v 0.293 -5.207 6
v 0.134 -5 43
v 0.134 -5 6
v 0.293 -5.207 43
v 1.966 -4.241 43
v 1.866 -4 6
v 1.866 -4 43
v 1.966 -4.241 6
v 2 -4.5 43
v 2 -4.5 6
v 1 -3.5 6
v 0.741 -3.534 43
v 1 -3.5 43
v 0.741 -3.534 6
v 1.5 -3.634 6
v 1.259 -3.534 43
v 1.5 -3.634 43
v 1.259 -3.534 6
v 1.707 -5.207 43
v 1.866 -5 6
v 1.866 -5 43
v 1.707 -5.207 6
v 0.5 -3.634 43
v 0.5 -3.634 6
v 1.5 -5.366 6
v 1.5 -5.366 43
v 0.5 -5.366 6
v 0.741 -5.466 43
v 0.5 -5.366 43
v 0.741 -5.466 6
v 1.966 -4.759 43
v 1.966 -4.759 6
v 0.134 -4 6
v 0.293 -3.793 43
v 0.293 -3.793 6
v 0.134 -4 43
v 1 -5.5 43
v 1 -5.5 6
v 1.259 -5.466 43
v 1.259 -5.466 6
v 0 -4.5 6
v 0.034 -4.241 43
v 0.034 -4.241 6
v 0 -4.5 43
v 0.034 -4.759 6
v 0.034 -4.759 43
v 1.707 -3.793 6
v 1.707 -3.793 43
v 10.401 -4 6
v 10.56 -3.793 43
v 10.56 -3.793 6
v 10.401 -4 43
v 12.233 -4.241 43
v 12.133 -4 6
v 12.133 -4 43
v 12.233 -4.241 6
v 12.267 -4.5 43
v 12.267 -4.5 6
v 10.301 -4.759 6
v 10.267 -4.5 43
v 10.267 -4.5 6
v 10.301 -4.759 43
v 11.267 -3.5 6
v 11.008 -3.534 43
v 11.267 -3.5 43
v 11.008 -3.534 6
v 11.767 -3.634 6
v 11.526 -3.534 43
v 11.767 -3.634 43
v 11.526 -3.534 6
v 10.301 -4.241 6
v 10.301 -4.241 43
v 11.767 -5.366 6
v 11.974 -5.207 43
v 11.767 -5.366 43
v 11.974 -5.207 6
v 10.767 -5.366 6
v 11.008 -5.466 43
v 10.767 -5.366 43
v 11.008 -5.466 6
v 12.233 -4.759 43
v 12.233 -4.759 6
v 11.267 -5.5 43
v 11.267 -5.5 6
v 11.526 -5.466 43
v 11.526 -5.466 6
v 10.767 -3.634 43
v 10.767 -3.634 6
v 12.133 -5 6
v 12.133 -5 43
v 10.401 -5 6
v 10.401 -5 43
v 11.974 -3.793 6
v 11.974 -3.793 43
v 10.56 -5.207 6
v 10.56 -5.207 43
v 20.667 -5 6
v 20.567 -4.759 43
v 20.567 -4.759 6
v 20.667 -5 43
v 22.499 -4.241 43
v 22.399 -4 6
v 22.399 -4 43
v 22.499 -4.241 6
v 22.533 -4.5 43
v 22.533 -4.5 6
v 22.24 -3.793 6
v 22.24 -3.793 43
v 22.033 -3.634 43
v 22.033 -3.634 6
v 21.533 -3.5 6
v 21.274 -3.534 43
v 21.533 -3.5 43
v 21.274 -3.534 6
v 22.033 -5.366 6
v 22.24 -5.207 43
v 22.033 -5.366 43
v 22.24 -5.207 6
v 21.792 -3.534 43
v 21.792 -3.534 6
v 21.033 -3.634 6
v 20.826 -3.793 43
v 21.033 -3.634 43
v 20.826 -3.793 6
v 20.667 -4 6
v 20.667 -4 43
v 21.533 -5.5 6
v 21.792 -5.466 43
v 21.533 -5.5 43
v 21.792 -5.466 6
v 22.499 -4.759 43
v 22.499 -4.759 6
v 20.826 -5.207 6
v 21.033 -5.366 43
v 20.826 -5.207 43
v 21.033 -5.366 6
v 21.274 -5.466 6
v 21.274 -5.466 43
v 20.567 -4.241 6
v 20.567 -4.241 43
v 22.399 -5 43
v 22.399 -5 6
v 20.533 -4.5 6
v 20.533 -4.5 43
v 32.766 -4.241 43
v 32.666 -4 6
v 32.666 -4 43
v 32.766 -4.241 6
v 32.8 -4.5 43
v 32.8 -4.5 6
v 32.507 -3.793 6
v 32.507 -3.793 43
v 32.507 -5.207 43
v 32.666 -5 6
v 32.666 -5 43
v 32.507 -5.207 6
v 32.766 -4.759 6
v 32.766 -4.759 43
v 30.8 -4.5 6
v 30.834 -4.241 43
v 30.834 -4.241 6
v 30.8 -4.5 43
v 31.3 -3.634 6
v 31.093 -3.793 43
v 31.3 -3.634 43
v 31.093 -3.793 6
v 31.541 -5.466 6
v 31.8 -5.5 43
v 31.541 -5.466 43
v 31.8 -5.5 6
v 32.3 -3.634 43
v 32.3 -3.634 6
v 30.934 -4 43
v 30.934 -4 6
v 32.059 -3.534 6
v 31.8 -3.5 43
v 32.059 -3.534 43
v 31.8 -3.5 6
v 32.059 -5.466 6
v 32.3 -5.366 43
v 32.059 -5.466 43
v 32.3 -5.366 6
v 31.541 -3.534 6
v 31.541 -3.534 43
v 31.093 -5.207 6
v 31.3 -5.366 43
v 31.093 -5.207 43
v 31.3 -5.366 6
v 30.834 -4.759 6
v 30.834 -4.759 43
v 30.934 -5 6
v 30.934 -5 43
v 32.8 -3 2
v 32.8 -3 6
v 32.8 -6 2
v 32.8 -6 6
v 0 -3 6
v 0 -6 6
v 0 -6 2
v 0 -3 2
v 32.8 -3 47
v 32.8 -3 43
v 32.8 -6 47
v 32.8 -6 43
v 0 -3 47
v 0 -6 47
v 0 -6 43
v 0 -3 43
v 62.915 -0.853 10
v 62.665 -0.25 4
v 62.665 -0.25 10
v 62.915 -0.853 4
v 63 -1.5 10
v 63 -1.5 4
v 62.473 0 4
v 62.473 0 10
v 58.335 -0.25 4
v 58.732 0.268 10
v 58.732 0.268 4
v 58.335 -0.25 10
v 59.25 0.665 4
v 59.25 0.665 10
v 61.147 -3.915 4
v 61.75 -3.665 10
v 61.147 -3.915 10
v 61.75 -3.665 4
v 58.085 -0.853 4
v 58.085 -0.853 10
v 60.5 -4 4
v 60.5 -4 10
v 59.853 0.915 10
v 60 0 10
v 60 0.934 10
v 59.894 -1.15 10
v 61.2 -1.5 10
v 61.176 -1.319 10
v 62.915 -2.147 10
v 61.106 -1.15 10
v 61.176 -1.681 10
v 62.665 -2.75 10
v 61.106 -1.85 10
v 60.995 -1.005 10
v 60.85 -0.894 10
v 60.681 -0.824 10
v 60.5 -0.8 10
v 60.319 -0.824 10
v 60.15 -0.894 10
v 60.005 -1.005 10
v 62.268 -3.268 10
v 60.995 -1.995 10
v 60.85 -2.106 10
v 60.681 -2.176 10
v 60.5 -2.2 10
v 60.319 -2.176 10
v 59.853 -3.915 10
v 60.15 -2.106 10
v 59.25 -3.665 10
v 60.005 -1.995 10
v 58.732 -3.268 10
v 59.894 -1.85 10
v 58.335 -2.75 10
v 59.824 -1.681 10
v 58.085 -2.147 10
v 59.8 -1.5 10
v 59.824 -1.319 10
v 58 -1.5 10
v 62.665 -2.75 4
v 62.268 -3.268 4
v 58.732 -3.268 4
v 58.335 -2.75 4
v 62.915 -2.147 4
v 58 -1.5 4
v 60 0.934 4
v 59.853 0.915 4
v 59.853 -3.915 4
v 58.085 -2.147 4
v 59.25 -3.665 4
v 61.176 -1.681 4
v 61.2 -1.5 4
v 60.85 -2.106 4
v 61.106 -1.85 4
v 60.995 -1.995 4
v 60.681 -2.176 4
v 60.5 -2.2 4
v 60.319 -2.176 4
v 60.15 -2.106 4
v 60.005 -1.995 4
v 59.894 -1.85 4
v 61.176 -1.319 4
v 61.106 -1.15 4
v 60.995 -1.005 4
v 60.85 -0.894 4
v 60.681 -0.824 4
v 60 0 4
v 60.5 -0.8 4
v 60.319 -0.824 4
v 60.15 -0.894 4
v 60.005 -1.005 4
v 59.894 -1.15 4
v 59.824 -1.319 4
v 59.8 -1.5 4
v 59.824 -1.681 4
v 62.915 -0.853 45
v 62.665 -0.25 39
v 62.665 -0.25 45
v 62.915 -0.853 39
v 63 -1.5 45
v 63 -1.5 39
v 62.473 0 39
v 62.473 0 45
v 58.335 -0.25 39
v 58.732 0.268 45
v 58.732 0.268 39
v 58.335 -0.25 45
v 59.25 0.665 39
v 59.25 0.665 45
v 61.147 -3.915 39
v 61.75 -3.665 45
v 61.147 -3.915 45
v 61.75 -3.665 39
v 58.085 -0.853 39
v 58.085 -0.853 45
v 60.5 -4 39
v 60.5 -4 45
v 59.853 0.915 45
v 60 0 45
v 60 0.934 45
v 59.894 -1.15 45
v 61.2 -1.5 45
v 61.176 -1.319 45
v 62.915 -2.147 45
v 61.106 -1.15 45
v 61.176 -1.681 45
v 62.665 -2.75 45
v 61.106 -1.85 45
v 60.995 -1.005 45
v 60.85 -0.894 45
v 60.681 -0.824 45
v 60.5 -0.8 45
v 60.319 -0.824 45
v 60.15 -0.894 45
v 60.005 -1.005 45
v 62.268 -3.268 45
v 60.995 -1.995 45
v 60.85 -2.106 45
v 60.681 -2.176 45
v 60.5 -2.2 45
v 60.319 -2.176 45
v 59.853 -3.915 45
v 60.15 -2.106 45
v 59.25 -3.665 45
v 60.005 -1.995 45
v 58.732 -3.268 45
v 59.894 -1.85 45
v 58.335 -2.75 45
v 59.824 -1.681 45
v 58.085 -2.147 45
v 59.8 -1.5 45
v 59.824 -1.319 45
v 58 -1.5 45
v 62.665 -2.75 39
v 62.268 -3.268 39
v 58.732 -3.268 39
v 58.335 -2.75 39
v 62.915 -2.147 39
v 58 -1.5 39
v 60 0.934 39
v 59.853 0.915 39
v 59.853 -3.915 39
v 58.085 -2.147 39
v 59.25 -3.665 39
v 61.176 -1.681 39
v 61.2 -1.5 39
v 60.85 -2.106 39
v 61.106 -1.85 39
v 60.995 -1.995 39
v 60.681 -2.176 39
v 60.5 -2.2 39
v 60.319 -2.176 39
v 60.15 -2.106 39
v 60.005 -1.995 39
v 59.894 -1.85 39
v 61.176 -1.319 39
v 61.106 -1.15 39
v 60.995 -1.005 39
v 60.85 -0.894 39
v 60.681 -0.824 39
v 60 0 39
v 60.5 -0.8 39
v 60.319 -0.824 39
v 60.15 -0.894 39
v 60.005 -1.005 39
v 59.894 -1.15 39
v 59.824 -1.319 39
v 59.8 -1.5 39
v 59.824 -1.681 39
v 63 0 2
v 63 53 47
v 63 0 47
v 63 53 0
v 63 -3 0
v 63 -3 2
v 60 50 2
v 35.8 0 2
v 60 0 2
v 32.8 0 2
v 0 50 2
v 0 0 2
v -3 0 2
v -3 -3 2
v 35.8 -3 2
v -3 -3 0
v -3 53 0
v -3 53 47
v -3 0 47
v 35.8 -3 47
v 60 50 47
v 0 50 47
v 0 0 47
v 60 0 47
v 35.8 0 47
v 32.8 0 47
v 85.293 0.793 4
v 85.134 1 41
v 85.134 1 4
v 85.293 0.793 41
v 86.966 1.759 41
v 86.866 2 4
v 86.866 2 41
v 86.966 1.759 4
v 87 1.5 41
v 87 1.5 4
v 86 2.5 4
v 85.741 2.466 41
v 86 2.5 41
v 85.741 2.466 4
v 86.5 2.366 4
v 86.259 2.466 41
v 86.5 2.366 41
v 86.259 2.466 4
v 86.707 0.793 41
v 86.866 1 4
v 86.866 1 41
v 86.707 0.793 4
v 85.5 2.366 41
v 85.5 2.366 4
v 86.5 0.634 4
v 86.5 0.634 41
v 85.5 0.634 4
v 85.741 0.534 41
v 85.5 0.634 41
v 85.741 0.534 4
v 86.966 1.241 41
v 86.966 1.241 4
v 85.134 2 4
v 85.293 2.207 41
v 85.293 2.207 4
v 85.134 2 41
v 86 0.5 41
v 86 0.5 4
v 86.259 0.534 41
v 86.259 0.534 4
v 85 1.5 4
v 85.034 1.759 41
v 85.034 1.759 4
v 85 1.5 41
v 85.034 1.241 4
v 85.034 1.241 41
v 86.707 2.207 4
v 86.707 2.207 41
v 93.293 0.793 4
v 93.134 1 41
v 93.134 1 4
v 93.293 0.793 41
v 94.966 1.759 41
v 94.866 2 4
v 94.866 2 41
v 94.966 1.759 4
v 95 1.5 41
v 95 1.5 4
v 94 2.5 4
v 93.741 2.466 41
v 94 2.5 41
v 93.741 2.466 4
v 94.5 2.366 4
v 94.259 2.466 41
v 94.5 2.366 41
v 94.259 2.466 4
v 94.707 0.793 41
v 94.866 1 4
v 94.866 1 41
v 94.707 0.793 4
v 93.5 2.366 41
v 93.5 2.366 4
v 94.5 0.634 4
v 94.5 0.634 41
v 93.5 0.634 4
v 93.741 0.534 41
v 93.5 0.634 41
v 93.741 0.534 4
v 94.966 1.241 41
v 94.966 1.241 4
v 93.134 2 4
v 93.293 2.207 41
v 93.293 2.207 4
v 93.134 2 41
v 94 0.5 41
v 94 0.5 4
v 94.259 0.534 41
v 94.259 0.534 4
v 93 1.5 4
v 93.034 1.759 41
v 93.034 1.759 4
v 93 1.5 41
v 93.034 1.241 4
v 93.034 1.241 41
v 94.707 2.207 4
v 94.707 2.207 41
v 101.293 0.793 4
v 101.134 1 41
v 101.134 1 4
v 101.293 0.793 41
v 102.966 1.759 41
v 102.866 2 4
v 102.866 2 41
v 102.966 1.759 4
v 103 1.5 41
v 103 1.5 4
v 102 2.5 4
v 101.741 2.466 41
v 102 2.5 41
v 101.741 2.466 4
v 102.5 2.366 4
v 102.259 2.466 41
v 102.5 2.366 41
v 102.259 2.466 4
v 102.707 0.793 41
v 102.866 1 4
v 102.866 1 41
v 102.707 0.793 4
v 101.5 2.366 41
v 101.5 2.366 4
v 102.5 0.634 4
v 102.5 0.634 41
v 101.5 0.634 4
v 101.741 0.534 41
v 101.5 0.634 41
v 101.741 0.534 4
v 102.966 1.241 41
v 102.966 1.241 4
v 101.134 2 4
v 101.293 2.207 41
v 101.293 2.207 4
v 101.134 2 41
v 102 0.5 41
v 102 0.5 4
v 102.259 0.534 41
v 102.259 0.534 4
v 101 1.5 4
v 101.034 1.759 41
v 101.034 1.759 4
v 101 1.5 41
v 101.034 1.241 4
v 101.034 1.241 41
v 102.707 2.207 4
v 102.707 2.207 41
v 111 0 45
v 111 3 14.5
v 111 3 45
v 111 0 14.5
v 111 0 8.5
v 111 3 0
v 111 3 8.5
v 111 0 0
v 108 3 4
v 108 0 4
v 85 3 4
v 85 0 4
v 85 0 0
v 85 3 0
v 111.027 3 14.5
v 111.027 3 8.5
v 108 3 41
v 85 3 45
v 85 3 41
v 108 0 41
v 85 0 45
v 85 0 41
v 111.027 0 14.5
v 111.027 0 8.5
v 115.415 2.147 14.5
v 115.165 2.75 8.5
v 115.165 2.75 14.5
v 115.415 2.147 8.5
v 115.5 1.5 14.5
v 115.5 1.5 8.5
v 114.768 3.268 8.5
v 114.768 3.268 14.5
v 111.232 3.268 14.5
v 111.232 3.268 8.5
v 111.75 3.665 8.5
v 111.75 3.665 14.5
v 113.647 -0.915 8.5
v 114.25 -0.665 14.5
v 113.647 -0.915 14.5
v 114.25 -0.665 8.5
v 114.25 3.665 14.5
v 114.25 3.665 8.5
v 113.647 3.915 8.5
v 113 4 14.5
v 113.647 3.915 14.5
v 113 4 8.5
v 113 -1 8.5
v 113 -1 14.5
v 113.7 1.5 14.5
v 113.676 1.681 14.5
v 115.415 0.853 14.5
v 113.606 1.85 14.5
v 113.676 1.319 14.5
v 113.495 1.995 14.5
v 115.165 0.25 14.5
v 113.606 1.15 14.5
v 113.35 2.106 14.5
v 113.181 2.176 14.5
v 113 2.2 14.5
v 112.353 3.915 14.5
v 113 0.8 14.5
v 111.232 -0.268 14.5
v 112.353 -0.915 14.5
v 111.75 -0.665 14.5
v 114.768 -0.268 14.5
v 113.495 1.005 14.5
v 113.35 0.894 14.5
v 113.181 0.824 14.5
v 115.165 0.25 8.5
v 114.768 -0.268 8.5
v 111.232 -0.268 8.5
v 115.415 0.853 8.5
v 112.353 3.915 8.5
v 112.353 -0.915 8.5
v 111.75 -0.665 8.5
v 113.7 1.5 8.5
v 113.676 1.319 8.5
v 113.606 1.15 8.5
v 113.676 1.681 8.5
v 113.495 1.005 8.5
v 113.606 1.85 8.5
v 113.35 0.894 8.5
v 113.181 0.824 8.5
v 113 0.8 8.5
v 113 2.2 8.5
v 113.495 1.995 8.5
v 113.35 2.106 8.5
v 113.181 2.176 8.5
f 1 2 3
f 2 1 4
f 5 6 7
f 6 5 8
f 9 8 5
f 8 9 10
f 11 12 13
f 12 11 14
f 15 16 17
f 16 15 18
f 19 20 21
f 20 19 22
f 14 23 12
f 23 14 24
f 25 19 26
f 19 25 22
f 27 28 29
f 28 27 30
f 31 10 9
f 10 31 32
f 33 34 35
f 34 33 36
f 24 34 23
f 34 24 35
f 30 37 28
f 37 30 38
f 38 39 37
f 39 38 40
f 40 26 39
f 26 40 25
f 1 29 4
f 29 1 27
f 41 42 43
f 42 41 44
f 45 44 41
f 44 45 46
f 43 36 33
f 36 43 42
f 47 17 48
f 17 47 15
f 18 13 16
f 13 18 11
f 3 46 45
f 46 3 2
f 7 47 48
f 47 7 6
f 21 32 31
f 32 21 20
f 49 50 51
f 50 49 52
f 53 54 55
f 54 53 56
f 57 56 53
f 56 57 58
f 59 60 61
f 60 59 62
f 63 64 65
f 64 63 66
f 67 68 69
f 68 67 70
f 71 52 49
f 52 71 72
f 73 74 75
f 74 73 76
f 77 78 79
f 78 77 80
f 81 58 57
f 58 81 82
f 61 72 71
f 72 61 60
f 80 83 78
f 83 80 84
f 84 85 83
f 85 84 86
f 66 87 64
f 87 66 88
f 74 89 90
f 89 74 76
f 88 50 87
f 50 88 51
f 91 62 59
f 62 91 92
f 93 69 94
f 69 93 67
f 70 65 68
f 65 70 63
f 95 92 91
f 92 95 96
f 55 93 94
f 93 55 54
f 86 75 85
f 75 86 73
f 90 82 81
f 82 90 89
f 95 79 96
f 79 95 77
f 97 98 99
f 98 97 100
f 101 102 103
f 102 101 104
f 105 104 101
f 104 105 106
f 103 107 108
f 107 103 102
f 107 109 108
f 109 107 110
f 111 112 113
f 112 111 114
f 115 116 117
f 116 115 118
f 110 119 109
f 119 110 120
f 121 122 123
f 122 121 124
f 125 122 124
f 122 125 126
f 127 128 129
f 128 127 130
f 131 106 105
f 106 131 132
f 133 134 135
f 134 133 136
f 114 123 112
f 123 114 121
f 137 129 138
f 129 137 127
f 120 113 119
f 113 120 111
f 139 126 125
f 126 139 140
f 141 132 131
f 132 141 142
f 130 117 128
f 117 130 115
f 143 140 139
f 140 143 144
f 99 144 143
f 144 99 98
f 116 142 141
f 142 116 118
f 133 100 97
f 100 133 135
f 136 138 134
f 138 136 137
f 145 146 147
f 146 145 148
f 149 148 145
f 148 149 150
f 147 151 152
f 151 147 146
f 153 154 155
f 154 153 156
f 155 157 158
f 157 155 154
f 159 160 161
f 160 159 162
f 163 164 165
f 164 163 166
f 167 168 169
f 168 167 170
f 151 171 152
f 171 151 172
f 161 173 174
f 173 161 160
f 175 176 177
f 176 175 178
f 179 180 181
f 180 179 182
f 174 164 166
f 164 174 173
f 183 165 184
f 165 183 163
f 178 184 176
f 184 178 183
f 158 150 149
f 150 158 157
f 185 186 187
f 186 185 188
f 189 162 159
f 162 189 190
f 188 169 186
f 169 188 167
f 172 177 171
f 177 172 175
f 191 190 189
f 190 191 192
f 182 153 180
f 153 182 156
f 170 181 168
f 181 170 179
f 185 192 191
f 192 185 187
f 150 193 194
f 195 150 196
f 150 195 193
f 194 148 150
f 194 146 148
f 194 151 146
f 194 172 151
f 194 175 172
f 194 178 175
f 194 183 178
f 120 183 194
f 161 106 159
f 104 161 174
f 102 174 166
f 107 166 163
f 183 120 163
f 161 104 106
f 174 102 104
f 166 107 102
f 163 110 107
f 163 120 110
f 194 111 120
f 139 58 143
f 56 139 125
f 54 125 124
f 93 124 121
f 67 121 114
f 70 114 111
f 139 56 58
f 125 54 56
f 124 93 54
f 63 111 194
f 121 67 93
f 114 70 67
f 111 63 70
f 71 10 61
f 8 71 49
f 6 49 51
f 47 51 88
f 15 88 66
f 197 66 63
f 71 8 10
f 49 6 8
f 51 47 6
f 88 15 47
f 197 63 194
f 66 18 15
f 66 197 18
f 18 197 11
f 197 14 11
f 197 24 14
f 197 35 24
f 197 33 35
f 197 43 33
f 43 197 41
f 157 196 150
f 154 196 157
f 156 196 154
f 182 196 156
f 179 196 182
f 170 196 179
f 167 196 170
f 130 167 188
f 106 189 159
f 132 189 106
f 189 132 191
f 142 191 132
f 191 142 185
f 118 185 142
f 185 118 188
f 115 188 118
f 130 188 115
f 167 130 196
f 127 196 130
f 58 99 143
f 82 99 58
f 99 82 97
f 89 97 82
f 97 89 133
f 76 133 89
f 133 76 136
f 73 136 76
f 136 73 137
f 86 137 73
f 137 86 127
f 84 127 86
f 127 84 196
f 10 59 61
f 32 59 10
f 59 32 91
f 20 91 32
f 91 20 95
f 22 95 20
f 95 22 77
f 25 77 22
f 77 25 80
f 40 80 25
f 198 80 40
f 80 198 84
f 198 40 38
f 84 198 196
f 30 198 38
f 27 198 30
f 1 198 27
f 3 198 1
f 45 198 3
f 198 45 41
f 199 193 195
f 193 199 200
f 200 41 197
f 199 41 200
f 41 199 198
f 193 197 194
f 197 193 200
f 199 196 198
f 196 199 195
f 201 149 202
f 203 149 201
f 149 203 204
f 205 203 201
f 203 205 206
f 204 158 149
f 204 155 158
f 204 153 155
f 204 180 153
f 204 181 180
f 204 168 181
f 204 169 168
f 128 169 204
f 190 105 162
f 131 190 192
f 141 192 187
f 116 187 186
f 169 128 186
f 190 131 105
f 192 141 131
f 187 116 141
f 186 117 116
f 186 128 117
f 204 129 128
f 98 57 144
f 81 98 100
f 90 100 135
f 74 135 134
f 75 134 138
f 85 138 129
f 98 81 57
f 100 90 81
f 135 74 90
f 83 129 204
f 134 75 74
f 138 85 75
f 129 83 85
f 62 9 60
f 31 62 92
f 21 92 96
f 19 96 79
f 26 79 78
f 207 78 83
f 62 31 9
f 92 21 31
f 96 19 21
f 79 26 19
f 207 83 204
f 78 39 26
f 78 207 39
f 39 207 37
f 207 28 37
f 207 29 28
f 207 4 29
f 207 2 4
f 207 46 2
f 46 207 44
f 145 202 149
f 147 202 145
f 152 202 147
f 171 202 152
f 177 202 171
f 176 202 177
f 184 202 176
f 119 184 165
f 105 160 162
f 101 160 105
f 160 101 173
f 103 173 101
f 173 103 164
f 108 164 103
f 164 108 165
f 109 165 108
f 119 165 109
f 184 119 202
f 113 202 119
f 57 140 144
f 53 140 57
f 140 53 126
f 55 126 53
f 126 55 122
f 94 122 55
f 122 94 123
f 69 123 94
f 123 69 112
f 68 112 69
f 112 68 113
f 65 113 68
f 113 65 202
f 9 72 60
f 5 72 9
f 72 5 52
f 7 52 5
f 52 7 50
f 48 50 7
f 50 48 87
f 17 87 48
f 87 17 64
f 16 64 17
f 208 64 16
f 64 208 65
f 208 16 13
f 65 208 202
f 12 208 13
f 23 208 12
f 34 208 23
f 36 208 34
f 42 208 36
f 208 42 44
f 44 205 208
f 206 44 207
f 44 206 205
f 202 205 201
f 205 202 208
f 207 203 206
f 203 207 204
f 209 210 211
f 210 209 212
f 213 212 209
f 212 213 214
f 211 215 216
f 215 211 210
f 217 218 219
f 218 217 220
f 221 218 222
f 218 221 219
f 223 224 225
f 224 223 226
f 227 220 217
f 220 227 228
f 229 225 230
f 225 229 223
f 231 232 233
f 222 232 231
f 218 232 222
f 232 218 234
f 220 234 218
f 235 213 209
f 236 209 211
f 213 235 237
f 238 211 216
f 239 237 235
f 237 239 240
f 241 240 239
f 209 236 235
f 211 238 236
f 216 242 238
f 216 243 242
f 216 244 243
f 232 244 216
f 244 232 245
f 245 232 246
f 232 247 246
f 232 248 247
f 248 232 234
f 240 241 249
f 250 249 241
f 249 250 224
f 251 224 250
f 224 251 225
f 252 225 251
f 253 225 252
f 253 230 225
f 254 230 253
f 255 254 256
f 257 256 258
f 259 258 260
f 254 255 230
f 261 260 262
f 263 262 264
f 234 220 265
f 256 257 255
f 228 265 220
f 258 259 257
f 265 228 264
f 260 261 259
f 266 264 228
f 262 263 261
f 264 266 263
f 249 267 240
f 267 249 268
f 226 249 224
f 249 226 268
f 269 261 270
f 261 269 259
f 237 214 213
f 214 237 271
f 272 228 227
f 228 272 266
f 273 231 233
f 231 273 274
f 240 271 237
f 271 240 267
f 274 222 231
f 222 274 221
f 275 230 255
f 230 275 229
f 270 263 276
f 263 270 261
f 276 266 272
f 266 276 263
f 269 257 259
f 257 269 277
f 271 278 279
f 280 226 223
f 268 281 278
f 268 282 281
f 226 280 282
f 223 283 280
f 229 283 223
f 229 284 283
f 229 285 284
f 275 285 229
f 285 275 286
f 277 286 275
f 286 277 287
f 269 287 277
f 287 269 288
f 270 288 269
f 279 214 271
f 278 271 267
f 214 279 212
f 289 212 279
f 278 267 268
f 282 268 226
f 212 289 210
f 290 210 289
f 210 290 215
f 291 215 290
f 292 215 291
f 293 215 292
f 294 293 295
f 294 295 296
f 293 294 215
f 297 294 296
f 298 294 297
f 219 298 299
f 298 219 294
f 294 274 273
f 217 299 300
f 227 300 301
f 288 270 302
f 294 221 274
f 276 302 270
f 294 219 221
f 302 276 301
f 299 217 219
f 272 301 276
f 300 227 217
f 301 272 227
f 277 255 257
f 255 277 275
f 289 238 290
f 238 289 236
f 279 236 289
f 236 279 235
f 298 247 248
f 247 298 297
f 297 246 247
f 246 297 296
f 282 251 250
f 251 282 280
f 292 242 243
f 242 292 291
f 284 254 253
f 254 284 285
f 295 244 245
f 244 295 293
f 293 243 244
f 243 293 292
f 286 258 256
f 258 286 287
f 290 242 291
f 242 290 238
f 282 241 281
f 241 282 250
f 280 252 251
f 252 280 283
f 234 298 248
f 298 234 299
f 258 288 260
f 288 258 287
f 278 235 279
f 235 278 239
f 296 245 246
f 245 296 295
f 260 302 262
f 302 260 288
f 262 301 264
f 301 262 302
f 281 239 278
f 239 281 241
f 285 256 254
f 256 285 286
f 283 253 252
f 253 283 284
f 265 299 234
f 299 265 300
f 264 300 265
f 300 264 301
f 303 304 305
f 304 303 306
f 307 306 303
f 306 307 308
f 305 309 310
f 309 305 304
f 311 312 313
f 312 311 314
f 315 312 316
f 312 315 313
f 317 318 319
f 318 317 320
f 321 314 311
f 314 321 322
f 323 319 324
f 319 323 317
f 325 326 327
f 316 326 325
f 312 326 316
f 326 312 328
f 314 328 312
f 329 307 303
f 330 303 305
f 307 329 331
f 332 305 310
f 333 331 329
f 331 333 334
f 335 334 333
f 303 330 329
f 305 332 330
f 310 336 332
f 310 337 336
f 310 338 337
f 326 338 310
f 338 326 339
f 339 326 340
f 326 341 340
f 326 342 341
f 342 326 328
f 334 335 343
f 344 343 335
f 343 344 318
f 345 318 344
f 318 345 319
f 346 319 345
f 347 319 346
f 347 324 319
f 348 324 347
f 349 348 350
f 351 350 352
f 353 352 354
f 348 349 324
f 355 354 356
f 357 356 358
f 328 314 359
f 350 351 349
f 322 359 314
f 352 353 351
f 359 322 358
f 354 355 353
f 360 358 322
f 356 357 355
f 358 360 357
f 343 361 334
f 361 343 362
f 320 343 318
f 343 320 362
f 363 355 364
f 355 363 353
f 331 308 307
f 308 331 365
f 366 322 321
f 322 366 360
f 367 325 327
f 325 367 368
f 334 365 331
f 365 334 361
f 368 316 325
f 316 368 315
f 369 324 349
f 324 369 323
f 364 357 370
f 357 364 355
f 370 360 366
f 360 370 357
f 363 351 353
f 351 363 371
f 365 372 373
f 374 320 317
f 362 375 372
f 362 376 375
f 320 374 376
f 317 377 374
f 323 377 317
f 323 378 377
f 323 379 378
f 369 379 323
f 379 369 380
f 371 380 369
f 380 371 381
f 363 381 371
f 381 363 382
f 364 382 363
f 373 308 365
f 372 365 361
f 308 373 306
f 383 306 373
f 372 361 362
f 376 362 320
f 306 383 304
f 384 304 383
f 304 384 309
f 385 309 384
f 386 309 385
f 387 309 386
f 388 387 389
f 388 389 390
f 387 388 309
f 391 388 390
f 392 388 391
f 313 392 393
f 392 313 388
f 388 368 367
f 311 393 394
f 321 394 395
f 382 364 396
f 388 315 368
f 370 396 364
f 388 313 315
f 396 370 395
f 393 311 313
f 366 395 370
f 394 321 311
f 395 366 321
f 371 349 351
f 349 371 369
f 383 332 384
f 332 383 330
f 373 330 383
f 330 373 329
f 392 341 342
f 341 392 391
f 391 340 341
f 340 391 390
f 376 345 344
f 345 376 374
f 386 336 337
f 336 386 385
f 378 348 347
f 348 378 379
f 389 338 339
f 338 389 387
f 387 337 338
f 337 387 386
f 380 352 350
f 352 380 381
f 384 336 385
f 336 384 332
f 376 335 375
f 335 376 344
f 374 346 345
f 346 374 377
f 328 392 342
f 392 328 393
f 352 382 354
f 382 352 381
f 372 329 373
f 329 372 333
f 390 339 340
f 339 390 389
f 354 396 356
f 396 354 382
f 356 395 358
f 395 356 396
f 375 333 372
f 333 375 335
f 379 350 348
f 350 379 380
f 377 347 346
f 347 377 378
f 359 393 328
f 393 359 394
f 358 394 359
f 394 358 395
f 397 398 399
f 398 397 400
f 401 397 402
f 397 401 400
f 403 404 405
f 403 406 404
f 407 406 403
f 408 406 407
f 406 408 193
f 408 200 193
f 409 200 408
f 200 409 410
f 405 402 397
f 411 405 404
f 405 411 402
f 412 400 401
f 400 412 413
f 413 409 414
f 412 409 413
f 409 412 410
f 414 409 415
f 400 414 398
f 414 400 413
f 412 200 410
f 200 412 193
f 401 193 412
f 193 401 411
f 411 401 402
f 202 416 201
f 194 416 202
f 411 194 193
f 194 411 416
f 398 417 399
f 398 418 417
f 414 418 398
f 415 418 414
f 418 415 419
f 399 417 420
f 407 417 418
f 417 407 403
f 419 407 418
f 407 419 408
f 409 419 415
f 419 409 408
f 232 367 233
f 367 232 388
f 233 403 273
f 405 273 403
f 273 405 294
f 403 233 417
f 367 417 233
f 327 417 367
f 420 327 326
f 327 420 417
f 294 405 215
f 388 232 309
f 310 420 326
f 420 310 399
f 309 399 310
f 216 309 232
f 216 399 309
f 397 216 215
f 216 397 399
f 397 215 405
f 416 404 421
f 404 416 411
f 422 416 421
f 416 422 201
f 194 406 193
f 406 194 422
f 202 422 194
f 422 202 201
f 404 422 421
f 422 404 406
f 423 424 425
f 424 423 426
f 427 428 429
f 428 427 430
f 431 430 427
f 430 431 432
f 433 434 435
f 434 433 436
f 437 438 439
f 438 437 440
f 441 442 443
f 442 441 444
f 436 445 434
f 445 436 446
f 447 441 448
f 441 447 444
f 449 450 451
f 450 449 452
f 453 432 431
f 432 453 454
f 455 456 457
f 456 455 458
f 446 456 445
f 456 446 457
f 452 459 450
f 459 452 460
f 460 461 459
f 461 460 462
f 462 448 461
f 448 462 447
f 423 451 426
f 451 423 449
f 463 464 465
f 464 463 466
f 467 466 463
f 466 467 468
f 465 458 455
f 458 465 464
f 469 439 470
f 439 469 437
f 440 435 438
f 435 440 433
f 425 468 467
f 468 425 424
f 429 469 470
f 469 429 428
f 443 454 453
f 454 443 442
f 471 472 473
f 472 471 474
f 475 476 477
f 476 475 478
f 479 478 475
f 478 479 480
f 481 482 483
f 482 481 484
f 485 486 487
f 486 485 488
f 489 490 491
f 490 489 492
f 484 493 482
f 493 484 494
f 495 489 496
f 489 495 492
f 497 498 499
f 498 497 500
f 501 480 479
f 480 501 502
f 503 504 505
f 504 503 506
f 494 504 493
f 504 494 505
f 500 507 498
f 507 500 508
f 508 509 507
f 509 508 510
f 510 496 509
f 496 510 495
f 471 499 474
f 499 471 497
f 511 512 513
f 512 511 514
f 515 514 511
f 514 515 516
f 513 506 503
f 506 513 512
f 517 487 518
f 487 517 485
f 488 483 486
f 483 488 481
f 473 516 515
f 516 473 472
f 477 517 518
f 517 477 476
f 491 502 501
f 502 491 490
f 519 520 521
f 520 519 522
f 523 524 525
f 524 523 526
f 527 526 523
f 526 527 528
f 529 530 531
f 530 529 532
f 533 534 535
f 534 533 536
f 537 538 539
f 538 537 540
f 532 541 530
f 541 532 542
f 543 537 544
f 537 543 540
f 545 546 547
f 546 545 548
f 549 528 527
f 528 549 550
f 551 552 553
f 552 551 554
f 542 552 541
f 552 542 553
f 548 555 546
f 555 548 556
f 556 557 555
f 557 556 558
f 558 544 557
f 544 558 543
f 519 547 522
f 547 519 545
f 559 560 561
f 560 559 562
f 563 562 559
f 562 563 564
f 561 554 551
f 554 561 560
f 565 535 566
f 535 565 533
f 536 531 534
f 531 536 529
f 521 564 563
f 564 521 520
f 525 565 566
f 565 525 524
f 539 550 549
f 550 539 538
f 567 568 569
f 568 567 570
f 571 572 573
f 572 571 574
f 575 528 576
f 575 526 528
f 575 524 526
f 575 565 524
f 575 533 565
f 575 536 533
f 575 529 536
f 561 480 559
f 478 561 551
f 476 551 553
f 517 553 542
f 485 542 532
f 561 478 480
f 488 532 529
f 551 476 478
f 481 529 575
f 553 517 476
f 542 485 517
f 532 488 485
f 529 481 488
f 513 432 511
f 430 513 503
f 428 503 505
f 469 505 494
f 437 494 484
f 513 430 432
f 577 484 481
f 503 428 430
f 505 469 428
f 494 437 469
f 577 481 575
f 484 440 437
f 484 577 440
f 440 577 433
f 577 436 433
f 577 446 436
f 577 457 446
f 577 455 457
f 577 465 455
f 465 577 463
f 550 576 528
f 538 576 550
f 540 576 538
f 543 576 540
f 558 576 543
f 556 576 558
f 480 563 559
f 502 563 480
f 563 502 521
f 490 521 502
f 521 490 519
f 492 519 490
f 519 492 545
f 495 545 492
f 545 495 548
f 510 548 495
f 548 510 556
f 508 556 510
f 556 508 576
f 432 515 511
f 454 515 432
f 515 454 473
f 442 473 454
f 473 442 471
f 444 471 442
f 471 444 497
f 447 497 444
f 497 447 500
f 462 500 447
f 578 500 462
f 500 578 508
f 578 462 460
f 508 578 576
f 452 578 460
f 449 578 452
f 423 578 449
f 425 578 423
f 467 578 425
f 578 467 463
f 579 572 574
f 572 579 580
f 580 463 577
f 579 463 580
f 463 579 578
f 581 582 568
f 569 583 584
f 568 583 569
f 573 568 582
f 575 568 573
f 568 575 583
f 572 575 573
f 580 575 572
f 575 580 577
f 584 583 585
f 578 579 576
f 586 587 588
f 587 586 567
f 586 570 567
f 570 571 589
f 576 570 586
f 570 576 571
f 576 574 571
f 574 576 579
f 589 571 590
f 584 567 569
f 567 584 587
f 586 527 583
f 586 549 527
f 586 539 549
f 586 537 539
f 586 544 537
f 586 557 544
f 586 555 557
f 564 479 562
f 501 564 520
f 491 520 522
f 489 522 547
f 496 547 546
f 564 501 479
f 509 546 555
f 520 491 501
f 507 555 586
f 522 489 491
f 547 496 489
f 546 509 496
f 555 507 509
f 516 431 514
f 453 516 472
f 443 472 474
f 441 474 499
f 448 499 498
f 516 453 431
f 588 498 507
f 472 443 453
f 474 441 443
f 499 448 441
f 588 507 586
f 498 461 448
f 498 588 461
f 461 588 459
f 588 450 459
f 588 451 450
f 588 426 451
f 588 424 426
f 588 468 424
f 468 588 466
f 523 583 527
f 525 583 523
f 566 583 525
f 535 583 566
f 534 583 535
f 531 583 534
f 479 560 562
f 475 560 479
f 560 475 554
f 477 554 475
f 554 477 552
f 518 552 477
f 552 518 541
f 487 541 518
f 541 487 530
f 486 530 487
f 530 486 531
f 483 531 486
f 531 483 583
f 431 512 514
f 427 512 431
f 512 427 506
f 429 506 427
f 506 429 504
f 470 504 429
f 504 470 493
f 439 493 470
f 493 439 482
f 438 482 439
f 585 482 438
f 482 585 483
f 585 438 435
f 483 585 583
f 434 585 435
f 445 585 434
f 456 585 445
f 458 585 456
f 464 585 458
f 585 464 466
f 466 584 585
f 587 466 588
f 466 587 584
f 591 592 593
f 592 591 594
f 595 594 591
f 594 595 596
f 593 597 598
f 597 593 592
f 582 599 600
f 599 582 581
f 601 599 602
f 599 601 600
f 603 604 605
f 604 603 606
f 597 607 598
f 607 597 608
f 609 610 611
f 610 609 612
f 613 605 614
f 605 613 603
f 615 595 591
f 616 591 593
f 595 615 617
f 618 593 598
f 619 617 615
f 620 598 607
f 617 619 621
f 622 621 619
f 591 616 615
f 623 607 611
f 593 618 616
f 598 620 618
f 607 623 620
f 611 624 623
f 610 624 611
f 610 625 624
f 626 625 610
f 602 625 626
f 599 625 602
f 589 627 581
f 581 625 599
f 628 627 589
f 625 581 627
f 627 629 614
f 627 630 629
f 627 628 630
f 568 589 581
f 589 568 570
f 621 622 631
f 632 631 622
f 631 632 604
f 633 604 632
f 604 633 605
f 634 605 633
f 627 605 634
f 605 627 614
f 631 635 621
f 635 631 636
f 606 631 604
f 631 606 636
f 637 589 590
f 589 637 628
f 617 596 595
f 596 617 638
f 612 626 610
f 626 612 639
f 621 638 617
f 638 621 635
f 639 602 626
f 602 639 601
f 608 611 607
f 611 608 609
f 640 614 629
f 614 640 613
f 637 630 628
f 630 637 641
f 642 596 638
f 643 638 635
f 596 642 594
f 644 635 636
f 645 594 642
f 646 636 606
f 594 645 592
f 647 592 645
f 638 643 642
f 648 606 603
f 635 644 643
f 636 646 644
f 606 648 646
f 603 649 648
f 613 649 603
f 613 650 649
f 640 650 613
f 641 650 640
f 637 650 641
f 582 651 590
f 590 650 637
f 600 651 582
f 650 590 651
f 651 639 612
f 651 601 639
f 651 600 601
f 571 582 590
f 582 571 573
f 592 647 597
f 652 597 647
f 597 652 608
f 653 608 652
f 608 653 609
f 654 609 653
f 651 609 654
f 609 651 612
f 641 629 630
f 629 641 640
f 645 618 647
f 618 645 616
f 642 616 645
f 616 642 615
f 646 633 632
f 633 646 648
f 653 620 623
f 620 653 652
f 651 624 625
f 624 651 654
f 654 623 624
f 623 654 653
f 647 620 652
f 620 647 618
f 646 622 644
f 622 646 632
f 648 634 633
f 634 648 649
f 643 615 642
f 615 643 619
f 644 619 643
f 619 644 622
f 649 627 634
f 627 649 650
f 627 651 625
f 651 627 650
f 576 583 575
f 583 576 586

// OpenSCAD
// ============================================================
// PRISON CELL - 28mm wargame terrain
// Hinged barred door swings on a 1.0mm paperclip axle
// Wire-axle standard: hole = wire dia + 0.4mm (free spin)
// Print: cell body + door as separate parts, drop wire through
// ============================================================

/* [Wire Axle Standard] */
wire_d       = 1.0;   // paperclip
hole_d       = wire_d + 0.4;

/* [Cell Dimensions] */
cell_w       = 60;    // interior width
cell_d       = 50;    // interior depth
wall_h       = 45;    // wall height
wall_t       = 3;     // wall thickness
floor_t      = 2;

/* [Bars] */
bar_d        = 2.0;   // bar diameter (chunky for FDM strength)
bar_gap      = 6;     // clear space between bars (mini can't slip through)
frame_t      = 4;     // top/bottom rail of barred sections

/* [Door] */
door_w       = 26;
door_clear   = 0.6;   // gap around door so it swings freely
hinge_knuckle_d = 5;  // outer diameter of hinge knuckles
hinge_knuckle_h = 6;

$fn = 24;

// -------- helpers --------
module bars(width, height) {
    n = floor((width - bar_d) / (bar_d + bar_gap));
    spacing = (width - bar_d) / max(n,1);
    // top + bottom rails
    translate([0,0,0]) cube([width, wall_t, frame_t]);
    translate([0,0,height-frame_t]) cube([width, wall_t, frame_t]);
    // vertical bars
    for (i = [0:n])
        translate([bar_d/2 + i*spacing, wall_t/2, frame_t-0.5])
            cylinder(d=bar_d, h=height - 2*frame_t + 1);
}

module hinge_knuckle() {
    difference() {
        cylinder(d=hinge_knuckle_d, h=hinge_knuckle_h);
        translate([0,0,-0.5]) cylinder(d=hole_d, h=hinge_knuckle_h+1);
    }
}

// -------- cell body --------
module cell_body() {
    // floor
    translate([-wall_t, -wall_t, 0])
        cube([cell_w + 2*wall_t, cell_d + 2*wall_t, floor_t]);
    // back wall (solid)
    translate([-wall_t, cell_d, floor_t])
        cube([cell_w + 2*wall_t, wall_t, wall_h]);
    // side walls (solid)
    translate([-wall_t, 0, floor_t]) cube([wall_t, cell_d + wall_t, wall_h]);
    translate([cell_w, 0, floor_t])  cube([wall_t, cell_d + wall_t, wall_h]);
    // front: barred section left of the door opening
    front_bar_w = cell_w - door_w - 2*door_clear;
    translate([0, -wall_t + (wall_t - wall_t)/2, floor_t])
        translate([0, 0, 0]) bars_front(front_bar_w);
    // door frame post at the opening edge
    translate([front_bar_w, -wall_t, floor_t])
        cube([3, wall_t, wall_h]);
    // body-side hinge knuckles (top & bottom) on the right edge of opening
    hx = cell_w + wall_t - hinge_knuckle_d/2;
    translate([hx, -wall_t/2, floor_t + 2])            hinge_knuckle();
    translate([hx, -wall_t/2, floor_t + wall_h - 2 - hinge_knuckle_h]) hinge_knuckle();
}

module bars_front(width) {
    translate([0, -wall_t, 0]) bars(width, wall_h);
}

// -------- door (print separately, lies flat) --------
module door() {
    difference() {
        union() {
            bars(door_w, wall_h);
            // hinge-side stile
            translate([door_w - 3, 0, 0]) cube([3, wall_t, wall_h]);
            // door-side hinge knuckle (middle - meshes between body knuckles)
            translate([door_w + hinge_knuckle_d/2 - 0.5, wall_t/2, 0]) {
                translate([0,0, 2 + hinge_knuckle_h + 0.5]) hinge_knuckle();
                // arm connecting knuckle to door
                translate([-hinge_knuckle_d/2 - 1, -wall_t/2, 2 + hinge_knuckle_h + 0.5])
                    cube([hinge_knuckle_d/2 + 1, wall_t, hinge_knuckle_h]);
            }
        }
    }
}

// -------- layout --------
cell_body();
translate([cell_w + 25, 0, 0]) door();   // door beside body for printing
